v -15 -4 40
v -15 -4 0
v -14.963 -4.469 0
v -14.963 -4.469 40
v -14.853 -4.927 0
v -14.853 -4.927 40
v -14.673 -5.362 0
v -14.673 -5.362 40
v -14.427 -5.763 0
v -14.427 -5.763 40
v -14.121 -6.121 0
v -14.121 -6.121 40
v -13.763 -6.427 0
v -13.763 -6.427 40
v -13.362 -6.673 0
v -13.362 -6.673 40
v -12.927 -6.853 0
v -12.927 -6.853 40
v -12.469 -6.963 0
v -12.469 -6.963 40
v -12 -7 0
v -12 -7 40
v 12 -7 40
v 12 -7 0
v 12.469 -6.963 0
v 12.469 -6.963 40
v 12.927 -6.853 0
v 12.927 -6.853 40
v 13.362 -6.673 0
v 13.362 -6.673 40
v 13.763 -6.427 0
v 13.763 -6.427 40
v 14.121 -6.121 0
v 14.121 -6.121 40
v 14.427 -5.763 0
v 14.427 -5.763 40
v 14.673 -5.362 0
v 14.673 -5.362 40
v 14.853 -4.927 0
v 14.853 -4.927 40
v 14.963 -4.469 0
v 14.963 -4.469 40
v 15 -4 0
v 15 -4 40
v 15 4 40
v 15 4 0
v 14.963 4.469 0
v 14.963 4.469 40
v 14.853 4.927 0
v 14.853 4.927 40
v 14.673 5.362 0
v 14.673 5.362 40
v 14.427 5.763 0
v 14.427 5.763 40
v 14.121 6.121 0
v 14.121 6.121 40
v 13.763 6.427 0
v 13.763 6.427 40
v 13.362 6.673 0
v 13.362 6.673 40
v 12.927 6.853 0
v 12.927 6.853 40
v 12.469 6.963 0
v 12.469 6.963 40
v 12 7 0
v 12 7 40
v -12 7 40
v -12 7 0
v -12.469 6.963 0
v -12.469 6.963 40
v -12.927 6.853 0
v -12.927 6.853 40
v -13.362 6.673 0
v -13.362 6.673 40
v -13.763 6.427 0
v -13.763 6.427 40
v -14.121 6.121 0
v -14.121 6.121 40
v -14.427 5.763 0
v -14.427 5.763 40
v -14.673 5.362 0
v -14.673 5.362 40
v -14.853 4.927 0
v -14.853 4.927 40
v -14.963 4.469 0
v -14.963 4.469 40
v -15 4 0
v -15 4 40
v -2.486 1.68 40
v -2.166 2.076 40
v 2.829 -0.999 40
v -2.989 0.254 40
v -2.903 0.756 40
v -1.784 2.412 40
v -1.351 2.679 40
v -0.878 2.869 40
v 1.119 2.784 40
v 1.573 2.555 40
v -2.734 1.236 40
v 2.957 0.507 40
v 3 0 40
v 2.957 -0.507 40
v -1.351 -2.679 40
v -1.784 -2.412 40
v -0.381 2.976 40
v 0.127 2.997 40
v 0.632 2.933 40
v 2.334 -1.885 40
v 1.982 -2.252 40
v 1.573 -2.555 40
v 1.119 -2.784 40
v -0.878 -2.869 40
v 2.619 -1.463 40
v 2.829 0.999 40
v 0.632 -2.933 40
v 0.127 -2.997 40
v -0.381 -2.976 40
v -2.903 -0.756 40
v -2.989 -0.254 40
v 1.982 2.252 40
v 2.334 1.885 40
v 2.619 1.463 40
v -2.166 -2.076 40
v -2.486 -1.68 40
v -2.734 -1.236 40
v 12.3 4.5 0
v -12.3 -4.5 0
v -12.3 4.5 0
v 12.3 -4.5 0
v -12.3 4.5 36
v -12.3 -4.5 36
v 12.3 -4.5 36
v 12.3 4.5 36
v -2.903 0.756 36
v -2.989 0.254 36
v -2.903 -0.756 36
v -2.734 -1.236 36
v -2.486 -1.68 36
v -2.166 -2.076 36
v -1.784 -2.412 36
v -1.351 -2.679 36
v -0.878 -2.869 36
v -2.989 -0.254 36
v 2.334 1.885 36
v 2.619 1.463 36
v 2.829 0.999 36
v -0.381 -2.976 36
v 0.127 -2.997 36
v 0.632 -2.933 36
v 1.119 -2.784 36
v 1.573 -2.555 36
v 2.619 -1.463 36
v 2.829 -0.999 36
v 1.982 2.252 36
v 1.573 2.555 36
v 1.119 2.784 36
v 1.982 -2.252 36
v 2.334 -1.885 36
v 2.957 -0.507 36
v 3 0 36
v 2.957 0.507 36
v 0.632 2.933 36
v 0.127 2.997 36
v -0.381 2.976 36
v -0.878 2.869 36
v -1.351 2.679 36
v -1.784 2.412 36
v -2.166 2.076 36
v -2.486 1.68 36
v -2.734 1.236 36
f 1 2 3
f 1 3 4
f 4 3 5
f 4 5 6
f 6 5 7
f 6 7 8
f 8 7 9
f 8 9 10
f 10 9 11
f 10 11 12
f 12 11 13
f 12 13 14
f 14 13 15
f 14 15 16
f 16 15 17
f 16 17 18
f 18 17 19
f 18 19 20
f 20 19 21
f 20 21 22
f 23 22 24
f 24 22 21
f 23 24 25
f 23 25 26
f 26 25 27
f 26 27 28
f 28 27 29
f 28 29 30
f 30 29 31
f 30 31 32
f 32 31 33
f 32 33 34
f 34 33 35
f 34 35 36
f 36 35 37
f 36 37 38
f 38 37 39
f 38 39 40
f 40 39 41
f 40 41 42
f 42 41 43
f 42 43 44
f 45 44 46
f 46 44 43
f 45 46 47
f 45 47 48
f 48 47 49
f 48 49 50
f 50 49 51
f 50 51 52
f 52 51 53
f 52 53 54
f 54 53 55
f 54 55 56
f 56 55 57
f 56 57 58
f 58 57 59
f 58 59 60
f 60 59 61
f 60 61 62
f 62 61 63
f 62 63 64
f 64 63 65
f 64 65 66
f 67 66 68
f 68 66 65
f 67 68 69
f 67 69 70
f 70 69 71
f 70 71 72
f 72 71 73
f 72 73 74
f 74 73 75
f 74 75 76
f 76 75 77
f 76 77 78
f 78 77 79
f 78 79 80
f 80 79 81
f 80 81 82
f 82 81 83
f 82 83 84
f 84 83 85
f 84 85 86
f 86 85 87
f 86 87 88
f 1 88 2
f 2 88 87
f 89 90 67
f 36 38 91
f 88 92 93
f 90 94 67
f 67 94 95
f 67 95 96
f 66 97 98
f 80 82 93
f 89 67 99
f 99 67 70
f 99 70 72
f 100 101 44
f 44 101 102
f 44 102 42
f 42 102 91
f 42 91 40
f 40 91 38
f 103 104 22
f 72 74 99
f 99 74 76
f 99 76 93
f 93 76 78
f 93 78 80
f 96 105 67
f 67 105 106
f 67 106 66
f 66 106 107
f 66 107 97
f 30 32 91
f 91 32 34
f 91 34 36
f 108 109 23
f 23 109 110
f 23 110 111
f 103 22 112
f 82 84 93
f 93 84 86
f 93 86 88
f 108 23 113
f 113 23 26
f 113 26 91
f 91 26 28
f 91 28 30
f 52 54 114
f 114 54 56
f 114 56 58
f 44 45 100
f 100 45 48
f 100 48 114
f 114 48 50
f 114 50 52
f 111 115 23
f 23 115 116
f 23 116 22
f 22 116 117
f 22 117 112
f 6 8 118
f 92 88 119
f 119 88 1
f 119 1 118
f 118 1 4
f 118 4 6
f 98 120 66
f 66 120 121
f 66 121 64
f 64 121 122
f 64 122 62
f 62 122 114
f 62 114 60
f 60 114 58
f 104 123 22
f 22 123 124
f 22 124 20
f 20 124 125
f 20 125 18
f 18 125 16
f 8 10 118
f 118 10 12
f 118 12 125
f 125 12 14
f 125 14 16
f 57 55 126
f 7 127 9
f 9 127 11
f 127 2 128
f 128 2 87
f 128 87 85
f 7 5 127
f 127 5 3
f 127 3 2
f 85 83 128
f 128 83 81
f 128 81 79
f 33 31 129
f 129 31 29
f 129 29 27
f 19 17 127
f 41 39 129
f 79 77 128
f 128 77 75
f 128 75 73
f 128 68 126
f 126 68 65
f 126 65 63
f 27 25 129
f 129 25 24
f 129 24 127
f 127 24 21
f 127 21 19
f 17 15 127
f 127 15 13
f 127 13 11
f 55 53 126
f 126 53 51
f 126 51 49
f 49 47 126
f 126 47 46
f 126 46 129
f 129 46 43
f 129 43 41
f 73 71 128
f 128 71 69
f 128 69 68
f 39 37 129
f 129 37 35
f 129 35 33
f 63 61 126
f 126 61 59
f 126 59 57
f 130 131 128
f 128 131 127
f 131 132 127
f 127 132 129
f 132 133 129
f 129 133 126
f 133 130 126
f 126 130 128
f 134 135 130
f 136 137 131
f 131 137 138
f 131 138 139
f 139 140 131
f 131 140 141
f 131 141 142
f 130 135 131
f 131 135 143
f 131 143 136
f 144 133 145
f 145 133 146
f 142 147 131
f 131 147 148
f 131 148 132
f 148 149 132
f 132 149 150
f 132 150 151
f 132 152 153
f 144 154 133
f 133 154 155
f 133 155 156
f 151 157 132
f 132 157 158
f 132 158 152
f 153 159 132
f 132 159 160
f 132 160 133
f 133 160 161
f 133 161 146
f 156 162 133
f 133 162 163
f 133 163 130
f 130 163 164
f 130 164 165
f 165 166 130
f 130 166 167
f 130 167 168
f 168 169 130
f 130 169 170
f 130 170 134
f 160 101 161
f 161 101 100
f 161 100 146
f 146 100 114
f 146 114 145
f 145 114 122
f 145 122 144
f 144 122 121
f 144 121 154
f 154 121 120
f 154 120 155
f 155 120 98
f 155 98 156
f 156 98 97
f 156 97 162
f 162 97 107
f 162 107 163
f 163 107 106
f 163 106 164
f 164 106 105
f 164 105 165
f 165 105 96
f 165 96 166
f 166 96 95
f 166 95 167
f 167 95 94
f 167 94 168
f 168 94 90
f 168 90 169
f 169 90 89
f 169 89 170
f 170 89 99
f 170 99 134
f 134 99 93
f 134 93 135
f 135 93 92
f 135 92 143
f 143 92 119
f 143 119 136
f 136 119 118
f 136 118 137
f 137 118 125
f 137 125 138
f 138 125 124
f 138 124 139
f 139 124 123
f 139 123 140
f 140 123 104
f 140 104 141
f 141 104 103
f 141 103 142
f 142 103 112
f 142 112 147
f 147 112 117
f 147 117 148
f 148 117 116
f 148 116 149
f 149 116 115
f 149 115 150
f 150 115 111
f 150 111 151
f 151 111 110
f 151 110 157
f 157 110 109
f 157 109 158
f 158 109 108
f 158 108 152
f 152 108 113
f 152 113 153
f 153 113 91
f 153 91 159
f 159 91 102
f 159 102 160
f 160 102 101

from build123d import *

# Parameters (mm, degrees)
BOSS_EXTRUDE1_DEPTH = 40
SKETCH2_W           = 24.6
SKETCH2_H           = 9
CUT_EXTRUDE1_DEPTH  = 36
SKETCH3_R           = 3
CUT_EXTRUDE2_DEPTH  = 4.5


with BuildPart() as part:
    # Sketch1 → Boss-Extrude1 (new body)
    with BuildSketch(Plane.XY):
        with BuildLine():
            Line((-12, -7), (12, -7))
            ThreePointArc((12, -7), (14.121320344, -6.121320344), (15, -4))
            Line((15, -4), (15, 4))
            ThreePointArc((15, 4), (14.121320344, 6.121320344), (12, 7))
            Line((12, 7), (-12, 7))
            ThreePointArc((-12, 7), (-14.121320344, 6.121320344), (-15, 4))
            Line((-15, 4), (-15, -4))
            ThreePointArc((-15, -4), (-14.121320344, -6.121320344), (-12, -7))
        make_face()
    extrude(amount=BOSS_EXTRUDE1_DEPTH)

    # Sketch2 → Cut-Extrude1 (cut)
    with BuildSketch(Plane(origin=(0, 0, 0), x_dir=(-1, 0, 0), z_dir=(0, 0, -1))):
        Rectangle(SKETCH2_W, SKETCH2_H)
    extrude(amount=-CUT_EXTRUDE1_DEPTH, mode=Mode.SUBTRACT)

    # Sketch3 → Cut-Extrude2 (cut)
    with BuildSketch(Plane.XY.offset(40)):
        Circle(SKETCH3_R)
    extrude(amount=-CUT_EXTRUDE2_DEPTH, mode=Mode.SUBTRACT)


solid = part.part
